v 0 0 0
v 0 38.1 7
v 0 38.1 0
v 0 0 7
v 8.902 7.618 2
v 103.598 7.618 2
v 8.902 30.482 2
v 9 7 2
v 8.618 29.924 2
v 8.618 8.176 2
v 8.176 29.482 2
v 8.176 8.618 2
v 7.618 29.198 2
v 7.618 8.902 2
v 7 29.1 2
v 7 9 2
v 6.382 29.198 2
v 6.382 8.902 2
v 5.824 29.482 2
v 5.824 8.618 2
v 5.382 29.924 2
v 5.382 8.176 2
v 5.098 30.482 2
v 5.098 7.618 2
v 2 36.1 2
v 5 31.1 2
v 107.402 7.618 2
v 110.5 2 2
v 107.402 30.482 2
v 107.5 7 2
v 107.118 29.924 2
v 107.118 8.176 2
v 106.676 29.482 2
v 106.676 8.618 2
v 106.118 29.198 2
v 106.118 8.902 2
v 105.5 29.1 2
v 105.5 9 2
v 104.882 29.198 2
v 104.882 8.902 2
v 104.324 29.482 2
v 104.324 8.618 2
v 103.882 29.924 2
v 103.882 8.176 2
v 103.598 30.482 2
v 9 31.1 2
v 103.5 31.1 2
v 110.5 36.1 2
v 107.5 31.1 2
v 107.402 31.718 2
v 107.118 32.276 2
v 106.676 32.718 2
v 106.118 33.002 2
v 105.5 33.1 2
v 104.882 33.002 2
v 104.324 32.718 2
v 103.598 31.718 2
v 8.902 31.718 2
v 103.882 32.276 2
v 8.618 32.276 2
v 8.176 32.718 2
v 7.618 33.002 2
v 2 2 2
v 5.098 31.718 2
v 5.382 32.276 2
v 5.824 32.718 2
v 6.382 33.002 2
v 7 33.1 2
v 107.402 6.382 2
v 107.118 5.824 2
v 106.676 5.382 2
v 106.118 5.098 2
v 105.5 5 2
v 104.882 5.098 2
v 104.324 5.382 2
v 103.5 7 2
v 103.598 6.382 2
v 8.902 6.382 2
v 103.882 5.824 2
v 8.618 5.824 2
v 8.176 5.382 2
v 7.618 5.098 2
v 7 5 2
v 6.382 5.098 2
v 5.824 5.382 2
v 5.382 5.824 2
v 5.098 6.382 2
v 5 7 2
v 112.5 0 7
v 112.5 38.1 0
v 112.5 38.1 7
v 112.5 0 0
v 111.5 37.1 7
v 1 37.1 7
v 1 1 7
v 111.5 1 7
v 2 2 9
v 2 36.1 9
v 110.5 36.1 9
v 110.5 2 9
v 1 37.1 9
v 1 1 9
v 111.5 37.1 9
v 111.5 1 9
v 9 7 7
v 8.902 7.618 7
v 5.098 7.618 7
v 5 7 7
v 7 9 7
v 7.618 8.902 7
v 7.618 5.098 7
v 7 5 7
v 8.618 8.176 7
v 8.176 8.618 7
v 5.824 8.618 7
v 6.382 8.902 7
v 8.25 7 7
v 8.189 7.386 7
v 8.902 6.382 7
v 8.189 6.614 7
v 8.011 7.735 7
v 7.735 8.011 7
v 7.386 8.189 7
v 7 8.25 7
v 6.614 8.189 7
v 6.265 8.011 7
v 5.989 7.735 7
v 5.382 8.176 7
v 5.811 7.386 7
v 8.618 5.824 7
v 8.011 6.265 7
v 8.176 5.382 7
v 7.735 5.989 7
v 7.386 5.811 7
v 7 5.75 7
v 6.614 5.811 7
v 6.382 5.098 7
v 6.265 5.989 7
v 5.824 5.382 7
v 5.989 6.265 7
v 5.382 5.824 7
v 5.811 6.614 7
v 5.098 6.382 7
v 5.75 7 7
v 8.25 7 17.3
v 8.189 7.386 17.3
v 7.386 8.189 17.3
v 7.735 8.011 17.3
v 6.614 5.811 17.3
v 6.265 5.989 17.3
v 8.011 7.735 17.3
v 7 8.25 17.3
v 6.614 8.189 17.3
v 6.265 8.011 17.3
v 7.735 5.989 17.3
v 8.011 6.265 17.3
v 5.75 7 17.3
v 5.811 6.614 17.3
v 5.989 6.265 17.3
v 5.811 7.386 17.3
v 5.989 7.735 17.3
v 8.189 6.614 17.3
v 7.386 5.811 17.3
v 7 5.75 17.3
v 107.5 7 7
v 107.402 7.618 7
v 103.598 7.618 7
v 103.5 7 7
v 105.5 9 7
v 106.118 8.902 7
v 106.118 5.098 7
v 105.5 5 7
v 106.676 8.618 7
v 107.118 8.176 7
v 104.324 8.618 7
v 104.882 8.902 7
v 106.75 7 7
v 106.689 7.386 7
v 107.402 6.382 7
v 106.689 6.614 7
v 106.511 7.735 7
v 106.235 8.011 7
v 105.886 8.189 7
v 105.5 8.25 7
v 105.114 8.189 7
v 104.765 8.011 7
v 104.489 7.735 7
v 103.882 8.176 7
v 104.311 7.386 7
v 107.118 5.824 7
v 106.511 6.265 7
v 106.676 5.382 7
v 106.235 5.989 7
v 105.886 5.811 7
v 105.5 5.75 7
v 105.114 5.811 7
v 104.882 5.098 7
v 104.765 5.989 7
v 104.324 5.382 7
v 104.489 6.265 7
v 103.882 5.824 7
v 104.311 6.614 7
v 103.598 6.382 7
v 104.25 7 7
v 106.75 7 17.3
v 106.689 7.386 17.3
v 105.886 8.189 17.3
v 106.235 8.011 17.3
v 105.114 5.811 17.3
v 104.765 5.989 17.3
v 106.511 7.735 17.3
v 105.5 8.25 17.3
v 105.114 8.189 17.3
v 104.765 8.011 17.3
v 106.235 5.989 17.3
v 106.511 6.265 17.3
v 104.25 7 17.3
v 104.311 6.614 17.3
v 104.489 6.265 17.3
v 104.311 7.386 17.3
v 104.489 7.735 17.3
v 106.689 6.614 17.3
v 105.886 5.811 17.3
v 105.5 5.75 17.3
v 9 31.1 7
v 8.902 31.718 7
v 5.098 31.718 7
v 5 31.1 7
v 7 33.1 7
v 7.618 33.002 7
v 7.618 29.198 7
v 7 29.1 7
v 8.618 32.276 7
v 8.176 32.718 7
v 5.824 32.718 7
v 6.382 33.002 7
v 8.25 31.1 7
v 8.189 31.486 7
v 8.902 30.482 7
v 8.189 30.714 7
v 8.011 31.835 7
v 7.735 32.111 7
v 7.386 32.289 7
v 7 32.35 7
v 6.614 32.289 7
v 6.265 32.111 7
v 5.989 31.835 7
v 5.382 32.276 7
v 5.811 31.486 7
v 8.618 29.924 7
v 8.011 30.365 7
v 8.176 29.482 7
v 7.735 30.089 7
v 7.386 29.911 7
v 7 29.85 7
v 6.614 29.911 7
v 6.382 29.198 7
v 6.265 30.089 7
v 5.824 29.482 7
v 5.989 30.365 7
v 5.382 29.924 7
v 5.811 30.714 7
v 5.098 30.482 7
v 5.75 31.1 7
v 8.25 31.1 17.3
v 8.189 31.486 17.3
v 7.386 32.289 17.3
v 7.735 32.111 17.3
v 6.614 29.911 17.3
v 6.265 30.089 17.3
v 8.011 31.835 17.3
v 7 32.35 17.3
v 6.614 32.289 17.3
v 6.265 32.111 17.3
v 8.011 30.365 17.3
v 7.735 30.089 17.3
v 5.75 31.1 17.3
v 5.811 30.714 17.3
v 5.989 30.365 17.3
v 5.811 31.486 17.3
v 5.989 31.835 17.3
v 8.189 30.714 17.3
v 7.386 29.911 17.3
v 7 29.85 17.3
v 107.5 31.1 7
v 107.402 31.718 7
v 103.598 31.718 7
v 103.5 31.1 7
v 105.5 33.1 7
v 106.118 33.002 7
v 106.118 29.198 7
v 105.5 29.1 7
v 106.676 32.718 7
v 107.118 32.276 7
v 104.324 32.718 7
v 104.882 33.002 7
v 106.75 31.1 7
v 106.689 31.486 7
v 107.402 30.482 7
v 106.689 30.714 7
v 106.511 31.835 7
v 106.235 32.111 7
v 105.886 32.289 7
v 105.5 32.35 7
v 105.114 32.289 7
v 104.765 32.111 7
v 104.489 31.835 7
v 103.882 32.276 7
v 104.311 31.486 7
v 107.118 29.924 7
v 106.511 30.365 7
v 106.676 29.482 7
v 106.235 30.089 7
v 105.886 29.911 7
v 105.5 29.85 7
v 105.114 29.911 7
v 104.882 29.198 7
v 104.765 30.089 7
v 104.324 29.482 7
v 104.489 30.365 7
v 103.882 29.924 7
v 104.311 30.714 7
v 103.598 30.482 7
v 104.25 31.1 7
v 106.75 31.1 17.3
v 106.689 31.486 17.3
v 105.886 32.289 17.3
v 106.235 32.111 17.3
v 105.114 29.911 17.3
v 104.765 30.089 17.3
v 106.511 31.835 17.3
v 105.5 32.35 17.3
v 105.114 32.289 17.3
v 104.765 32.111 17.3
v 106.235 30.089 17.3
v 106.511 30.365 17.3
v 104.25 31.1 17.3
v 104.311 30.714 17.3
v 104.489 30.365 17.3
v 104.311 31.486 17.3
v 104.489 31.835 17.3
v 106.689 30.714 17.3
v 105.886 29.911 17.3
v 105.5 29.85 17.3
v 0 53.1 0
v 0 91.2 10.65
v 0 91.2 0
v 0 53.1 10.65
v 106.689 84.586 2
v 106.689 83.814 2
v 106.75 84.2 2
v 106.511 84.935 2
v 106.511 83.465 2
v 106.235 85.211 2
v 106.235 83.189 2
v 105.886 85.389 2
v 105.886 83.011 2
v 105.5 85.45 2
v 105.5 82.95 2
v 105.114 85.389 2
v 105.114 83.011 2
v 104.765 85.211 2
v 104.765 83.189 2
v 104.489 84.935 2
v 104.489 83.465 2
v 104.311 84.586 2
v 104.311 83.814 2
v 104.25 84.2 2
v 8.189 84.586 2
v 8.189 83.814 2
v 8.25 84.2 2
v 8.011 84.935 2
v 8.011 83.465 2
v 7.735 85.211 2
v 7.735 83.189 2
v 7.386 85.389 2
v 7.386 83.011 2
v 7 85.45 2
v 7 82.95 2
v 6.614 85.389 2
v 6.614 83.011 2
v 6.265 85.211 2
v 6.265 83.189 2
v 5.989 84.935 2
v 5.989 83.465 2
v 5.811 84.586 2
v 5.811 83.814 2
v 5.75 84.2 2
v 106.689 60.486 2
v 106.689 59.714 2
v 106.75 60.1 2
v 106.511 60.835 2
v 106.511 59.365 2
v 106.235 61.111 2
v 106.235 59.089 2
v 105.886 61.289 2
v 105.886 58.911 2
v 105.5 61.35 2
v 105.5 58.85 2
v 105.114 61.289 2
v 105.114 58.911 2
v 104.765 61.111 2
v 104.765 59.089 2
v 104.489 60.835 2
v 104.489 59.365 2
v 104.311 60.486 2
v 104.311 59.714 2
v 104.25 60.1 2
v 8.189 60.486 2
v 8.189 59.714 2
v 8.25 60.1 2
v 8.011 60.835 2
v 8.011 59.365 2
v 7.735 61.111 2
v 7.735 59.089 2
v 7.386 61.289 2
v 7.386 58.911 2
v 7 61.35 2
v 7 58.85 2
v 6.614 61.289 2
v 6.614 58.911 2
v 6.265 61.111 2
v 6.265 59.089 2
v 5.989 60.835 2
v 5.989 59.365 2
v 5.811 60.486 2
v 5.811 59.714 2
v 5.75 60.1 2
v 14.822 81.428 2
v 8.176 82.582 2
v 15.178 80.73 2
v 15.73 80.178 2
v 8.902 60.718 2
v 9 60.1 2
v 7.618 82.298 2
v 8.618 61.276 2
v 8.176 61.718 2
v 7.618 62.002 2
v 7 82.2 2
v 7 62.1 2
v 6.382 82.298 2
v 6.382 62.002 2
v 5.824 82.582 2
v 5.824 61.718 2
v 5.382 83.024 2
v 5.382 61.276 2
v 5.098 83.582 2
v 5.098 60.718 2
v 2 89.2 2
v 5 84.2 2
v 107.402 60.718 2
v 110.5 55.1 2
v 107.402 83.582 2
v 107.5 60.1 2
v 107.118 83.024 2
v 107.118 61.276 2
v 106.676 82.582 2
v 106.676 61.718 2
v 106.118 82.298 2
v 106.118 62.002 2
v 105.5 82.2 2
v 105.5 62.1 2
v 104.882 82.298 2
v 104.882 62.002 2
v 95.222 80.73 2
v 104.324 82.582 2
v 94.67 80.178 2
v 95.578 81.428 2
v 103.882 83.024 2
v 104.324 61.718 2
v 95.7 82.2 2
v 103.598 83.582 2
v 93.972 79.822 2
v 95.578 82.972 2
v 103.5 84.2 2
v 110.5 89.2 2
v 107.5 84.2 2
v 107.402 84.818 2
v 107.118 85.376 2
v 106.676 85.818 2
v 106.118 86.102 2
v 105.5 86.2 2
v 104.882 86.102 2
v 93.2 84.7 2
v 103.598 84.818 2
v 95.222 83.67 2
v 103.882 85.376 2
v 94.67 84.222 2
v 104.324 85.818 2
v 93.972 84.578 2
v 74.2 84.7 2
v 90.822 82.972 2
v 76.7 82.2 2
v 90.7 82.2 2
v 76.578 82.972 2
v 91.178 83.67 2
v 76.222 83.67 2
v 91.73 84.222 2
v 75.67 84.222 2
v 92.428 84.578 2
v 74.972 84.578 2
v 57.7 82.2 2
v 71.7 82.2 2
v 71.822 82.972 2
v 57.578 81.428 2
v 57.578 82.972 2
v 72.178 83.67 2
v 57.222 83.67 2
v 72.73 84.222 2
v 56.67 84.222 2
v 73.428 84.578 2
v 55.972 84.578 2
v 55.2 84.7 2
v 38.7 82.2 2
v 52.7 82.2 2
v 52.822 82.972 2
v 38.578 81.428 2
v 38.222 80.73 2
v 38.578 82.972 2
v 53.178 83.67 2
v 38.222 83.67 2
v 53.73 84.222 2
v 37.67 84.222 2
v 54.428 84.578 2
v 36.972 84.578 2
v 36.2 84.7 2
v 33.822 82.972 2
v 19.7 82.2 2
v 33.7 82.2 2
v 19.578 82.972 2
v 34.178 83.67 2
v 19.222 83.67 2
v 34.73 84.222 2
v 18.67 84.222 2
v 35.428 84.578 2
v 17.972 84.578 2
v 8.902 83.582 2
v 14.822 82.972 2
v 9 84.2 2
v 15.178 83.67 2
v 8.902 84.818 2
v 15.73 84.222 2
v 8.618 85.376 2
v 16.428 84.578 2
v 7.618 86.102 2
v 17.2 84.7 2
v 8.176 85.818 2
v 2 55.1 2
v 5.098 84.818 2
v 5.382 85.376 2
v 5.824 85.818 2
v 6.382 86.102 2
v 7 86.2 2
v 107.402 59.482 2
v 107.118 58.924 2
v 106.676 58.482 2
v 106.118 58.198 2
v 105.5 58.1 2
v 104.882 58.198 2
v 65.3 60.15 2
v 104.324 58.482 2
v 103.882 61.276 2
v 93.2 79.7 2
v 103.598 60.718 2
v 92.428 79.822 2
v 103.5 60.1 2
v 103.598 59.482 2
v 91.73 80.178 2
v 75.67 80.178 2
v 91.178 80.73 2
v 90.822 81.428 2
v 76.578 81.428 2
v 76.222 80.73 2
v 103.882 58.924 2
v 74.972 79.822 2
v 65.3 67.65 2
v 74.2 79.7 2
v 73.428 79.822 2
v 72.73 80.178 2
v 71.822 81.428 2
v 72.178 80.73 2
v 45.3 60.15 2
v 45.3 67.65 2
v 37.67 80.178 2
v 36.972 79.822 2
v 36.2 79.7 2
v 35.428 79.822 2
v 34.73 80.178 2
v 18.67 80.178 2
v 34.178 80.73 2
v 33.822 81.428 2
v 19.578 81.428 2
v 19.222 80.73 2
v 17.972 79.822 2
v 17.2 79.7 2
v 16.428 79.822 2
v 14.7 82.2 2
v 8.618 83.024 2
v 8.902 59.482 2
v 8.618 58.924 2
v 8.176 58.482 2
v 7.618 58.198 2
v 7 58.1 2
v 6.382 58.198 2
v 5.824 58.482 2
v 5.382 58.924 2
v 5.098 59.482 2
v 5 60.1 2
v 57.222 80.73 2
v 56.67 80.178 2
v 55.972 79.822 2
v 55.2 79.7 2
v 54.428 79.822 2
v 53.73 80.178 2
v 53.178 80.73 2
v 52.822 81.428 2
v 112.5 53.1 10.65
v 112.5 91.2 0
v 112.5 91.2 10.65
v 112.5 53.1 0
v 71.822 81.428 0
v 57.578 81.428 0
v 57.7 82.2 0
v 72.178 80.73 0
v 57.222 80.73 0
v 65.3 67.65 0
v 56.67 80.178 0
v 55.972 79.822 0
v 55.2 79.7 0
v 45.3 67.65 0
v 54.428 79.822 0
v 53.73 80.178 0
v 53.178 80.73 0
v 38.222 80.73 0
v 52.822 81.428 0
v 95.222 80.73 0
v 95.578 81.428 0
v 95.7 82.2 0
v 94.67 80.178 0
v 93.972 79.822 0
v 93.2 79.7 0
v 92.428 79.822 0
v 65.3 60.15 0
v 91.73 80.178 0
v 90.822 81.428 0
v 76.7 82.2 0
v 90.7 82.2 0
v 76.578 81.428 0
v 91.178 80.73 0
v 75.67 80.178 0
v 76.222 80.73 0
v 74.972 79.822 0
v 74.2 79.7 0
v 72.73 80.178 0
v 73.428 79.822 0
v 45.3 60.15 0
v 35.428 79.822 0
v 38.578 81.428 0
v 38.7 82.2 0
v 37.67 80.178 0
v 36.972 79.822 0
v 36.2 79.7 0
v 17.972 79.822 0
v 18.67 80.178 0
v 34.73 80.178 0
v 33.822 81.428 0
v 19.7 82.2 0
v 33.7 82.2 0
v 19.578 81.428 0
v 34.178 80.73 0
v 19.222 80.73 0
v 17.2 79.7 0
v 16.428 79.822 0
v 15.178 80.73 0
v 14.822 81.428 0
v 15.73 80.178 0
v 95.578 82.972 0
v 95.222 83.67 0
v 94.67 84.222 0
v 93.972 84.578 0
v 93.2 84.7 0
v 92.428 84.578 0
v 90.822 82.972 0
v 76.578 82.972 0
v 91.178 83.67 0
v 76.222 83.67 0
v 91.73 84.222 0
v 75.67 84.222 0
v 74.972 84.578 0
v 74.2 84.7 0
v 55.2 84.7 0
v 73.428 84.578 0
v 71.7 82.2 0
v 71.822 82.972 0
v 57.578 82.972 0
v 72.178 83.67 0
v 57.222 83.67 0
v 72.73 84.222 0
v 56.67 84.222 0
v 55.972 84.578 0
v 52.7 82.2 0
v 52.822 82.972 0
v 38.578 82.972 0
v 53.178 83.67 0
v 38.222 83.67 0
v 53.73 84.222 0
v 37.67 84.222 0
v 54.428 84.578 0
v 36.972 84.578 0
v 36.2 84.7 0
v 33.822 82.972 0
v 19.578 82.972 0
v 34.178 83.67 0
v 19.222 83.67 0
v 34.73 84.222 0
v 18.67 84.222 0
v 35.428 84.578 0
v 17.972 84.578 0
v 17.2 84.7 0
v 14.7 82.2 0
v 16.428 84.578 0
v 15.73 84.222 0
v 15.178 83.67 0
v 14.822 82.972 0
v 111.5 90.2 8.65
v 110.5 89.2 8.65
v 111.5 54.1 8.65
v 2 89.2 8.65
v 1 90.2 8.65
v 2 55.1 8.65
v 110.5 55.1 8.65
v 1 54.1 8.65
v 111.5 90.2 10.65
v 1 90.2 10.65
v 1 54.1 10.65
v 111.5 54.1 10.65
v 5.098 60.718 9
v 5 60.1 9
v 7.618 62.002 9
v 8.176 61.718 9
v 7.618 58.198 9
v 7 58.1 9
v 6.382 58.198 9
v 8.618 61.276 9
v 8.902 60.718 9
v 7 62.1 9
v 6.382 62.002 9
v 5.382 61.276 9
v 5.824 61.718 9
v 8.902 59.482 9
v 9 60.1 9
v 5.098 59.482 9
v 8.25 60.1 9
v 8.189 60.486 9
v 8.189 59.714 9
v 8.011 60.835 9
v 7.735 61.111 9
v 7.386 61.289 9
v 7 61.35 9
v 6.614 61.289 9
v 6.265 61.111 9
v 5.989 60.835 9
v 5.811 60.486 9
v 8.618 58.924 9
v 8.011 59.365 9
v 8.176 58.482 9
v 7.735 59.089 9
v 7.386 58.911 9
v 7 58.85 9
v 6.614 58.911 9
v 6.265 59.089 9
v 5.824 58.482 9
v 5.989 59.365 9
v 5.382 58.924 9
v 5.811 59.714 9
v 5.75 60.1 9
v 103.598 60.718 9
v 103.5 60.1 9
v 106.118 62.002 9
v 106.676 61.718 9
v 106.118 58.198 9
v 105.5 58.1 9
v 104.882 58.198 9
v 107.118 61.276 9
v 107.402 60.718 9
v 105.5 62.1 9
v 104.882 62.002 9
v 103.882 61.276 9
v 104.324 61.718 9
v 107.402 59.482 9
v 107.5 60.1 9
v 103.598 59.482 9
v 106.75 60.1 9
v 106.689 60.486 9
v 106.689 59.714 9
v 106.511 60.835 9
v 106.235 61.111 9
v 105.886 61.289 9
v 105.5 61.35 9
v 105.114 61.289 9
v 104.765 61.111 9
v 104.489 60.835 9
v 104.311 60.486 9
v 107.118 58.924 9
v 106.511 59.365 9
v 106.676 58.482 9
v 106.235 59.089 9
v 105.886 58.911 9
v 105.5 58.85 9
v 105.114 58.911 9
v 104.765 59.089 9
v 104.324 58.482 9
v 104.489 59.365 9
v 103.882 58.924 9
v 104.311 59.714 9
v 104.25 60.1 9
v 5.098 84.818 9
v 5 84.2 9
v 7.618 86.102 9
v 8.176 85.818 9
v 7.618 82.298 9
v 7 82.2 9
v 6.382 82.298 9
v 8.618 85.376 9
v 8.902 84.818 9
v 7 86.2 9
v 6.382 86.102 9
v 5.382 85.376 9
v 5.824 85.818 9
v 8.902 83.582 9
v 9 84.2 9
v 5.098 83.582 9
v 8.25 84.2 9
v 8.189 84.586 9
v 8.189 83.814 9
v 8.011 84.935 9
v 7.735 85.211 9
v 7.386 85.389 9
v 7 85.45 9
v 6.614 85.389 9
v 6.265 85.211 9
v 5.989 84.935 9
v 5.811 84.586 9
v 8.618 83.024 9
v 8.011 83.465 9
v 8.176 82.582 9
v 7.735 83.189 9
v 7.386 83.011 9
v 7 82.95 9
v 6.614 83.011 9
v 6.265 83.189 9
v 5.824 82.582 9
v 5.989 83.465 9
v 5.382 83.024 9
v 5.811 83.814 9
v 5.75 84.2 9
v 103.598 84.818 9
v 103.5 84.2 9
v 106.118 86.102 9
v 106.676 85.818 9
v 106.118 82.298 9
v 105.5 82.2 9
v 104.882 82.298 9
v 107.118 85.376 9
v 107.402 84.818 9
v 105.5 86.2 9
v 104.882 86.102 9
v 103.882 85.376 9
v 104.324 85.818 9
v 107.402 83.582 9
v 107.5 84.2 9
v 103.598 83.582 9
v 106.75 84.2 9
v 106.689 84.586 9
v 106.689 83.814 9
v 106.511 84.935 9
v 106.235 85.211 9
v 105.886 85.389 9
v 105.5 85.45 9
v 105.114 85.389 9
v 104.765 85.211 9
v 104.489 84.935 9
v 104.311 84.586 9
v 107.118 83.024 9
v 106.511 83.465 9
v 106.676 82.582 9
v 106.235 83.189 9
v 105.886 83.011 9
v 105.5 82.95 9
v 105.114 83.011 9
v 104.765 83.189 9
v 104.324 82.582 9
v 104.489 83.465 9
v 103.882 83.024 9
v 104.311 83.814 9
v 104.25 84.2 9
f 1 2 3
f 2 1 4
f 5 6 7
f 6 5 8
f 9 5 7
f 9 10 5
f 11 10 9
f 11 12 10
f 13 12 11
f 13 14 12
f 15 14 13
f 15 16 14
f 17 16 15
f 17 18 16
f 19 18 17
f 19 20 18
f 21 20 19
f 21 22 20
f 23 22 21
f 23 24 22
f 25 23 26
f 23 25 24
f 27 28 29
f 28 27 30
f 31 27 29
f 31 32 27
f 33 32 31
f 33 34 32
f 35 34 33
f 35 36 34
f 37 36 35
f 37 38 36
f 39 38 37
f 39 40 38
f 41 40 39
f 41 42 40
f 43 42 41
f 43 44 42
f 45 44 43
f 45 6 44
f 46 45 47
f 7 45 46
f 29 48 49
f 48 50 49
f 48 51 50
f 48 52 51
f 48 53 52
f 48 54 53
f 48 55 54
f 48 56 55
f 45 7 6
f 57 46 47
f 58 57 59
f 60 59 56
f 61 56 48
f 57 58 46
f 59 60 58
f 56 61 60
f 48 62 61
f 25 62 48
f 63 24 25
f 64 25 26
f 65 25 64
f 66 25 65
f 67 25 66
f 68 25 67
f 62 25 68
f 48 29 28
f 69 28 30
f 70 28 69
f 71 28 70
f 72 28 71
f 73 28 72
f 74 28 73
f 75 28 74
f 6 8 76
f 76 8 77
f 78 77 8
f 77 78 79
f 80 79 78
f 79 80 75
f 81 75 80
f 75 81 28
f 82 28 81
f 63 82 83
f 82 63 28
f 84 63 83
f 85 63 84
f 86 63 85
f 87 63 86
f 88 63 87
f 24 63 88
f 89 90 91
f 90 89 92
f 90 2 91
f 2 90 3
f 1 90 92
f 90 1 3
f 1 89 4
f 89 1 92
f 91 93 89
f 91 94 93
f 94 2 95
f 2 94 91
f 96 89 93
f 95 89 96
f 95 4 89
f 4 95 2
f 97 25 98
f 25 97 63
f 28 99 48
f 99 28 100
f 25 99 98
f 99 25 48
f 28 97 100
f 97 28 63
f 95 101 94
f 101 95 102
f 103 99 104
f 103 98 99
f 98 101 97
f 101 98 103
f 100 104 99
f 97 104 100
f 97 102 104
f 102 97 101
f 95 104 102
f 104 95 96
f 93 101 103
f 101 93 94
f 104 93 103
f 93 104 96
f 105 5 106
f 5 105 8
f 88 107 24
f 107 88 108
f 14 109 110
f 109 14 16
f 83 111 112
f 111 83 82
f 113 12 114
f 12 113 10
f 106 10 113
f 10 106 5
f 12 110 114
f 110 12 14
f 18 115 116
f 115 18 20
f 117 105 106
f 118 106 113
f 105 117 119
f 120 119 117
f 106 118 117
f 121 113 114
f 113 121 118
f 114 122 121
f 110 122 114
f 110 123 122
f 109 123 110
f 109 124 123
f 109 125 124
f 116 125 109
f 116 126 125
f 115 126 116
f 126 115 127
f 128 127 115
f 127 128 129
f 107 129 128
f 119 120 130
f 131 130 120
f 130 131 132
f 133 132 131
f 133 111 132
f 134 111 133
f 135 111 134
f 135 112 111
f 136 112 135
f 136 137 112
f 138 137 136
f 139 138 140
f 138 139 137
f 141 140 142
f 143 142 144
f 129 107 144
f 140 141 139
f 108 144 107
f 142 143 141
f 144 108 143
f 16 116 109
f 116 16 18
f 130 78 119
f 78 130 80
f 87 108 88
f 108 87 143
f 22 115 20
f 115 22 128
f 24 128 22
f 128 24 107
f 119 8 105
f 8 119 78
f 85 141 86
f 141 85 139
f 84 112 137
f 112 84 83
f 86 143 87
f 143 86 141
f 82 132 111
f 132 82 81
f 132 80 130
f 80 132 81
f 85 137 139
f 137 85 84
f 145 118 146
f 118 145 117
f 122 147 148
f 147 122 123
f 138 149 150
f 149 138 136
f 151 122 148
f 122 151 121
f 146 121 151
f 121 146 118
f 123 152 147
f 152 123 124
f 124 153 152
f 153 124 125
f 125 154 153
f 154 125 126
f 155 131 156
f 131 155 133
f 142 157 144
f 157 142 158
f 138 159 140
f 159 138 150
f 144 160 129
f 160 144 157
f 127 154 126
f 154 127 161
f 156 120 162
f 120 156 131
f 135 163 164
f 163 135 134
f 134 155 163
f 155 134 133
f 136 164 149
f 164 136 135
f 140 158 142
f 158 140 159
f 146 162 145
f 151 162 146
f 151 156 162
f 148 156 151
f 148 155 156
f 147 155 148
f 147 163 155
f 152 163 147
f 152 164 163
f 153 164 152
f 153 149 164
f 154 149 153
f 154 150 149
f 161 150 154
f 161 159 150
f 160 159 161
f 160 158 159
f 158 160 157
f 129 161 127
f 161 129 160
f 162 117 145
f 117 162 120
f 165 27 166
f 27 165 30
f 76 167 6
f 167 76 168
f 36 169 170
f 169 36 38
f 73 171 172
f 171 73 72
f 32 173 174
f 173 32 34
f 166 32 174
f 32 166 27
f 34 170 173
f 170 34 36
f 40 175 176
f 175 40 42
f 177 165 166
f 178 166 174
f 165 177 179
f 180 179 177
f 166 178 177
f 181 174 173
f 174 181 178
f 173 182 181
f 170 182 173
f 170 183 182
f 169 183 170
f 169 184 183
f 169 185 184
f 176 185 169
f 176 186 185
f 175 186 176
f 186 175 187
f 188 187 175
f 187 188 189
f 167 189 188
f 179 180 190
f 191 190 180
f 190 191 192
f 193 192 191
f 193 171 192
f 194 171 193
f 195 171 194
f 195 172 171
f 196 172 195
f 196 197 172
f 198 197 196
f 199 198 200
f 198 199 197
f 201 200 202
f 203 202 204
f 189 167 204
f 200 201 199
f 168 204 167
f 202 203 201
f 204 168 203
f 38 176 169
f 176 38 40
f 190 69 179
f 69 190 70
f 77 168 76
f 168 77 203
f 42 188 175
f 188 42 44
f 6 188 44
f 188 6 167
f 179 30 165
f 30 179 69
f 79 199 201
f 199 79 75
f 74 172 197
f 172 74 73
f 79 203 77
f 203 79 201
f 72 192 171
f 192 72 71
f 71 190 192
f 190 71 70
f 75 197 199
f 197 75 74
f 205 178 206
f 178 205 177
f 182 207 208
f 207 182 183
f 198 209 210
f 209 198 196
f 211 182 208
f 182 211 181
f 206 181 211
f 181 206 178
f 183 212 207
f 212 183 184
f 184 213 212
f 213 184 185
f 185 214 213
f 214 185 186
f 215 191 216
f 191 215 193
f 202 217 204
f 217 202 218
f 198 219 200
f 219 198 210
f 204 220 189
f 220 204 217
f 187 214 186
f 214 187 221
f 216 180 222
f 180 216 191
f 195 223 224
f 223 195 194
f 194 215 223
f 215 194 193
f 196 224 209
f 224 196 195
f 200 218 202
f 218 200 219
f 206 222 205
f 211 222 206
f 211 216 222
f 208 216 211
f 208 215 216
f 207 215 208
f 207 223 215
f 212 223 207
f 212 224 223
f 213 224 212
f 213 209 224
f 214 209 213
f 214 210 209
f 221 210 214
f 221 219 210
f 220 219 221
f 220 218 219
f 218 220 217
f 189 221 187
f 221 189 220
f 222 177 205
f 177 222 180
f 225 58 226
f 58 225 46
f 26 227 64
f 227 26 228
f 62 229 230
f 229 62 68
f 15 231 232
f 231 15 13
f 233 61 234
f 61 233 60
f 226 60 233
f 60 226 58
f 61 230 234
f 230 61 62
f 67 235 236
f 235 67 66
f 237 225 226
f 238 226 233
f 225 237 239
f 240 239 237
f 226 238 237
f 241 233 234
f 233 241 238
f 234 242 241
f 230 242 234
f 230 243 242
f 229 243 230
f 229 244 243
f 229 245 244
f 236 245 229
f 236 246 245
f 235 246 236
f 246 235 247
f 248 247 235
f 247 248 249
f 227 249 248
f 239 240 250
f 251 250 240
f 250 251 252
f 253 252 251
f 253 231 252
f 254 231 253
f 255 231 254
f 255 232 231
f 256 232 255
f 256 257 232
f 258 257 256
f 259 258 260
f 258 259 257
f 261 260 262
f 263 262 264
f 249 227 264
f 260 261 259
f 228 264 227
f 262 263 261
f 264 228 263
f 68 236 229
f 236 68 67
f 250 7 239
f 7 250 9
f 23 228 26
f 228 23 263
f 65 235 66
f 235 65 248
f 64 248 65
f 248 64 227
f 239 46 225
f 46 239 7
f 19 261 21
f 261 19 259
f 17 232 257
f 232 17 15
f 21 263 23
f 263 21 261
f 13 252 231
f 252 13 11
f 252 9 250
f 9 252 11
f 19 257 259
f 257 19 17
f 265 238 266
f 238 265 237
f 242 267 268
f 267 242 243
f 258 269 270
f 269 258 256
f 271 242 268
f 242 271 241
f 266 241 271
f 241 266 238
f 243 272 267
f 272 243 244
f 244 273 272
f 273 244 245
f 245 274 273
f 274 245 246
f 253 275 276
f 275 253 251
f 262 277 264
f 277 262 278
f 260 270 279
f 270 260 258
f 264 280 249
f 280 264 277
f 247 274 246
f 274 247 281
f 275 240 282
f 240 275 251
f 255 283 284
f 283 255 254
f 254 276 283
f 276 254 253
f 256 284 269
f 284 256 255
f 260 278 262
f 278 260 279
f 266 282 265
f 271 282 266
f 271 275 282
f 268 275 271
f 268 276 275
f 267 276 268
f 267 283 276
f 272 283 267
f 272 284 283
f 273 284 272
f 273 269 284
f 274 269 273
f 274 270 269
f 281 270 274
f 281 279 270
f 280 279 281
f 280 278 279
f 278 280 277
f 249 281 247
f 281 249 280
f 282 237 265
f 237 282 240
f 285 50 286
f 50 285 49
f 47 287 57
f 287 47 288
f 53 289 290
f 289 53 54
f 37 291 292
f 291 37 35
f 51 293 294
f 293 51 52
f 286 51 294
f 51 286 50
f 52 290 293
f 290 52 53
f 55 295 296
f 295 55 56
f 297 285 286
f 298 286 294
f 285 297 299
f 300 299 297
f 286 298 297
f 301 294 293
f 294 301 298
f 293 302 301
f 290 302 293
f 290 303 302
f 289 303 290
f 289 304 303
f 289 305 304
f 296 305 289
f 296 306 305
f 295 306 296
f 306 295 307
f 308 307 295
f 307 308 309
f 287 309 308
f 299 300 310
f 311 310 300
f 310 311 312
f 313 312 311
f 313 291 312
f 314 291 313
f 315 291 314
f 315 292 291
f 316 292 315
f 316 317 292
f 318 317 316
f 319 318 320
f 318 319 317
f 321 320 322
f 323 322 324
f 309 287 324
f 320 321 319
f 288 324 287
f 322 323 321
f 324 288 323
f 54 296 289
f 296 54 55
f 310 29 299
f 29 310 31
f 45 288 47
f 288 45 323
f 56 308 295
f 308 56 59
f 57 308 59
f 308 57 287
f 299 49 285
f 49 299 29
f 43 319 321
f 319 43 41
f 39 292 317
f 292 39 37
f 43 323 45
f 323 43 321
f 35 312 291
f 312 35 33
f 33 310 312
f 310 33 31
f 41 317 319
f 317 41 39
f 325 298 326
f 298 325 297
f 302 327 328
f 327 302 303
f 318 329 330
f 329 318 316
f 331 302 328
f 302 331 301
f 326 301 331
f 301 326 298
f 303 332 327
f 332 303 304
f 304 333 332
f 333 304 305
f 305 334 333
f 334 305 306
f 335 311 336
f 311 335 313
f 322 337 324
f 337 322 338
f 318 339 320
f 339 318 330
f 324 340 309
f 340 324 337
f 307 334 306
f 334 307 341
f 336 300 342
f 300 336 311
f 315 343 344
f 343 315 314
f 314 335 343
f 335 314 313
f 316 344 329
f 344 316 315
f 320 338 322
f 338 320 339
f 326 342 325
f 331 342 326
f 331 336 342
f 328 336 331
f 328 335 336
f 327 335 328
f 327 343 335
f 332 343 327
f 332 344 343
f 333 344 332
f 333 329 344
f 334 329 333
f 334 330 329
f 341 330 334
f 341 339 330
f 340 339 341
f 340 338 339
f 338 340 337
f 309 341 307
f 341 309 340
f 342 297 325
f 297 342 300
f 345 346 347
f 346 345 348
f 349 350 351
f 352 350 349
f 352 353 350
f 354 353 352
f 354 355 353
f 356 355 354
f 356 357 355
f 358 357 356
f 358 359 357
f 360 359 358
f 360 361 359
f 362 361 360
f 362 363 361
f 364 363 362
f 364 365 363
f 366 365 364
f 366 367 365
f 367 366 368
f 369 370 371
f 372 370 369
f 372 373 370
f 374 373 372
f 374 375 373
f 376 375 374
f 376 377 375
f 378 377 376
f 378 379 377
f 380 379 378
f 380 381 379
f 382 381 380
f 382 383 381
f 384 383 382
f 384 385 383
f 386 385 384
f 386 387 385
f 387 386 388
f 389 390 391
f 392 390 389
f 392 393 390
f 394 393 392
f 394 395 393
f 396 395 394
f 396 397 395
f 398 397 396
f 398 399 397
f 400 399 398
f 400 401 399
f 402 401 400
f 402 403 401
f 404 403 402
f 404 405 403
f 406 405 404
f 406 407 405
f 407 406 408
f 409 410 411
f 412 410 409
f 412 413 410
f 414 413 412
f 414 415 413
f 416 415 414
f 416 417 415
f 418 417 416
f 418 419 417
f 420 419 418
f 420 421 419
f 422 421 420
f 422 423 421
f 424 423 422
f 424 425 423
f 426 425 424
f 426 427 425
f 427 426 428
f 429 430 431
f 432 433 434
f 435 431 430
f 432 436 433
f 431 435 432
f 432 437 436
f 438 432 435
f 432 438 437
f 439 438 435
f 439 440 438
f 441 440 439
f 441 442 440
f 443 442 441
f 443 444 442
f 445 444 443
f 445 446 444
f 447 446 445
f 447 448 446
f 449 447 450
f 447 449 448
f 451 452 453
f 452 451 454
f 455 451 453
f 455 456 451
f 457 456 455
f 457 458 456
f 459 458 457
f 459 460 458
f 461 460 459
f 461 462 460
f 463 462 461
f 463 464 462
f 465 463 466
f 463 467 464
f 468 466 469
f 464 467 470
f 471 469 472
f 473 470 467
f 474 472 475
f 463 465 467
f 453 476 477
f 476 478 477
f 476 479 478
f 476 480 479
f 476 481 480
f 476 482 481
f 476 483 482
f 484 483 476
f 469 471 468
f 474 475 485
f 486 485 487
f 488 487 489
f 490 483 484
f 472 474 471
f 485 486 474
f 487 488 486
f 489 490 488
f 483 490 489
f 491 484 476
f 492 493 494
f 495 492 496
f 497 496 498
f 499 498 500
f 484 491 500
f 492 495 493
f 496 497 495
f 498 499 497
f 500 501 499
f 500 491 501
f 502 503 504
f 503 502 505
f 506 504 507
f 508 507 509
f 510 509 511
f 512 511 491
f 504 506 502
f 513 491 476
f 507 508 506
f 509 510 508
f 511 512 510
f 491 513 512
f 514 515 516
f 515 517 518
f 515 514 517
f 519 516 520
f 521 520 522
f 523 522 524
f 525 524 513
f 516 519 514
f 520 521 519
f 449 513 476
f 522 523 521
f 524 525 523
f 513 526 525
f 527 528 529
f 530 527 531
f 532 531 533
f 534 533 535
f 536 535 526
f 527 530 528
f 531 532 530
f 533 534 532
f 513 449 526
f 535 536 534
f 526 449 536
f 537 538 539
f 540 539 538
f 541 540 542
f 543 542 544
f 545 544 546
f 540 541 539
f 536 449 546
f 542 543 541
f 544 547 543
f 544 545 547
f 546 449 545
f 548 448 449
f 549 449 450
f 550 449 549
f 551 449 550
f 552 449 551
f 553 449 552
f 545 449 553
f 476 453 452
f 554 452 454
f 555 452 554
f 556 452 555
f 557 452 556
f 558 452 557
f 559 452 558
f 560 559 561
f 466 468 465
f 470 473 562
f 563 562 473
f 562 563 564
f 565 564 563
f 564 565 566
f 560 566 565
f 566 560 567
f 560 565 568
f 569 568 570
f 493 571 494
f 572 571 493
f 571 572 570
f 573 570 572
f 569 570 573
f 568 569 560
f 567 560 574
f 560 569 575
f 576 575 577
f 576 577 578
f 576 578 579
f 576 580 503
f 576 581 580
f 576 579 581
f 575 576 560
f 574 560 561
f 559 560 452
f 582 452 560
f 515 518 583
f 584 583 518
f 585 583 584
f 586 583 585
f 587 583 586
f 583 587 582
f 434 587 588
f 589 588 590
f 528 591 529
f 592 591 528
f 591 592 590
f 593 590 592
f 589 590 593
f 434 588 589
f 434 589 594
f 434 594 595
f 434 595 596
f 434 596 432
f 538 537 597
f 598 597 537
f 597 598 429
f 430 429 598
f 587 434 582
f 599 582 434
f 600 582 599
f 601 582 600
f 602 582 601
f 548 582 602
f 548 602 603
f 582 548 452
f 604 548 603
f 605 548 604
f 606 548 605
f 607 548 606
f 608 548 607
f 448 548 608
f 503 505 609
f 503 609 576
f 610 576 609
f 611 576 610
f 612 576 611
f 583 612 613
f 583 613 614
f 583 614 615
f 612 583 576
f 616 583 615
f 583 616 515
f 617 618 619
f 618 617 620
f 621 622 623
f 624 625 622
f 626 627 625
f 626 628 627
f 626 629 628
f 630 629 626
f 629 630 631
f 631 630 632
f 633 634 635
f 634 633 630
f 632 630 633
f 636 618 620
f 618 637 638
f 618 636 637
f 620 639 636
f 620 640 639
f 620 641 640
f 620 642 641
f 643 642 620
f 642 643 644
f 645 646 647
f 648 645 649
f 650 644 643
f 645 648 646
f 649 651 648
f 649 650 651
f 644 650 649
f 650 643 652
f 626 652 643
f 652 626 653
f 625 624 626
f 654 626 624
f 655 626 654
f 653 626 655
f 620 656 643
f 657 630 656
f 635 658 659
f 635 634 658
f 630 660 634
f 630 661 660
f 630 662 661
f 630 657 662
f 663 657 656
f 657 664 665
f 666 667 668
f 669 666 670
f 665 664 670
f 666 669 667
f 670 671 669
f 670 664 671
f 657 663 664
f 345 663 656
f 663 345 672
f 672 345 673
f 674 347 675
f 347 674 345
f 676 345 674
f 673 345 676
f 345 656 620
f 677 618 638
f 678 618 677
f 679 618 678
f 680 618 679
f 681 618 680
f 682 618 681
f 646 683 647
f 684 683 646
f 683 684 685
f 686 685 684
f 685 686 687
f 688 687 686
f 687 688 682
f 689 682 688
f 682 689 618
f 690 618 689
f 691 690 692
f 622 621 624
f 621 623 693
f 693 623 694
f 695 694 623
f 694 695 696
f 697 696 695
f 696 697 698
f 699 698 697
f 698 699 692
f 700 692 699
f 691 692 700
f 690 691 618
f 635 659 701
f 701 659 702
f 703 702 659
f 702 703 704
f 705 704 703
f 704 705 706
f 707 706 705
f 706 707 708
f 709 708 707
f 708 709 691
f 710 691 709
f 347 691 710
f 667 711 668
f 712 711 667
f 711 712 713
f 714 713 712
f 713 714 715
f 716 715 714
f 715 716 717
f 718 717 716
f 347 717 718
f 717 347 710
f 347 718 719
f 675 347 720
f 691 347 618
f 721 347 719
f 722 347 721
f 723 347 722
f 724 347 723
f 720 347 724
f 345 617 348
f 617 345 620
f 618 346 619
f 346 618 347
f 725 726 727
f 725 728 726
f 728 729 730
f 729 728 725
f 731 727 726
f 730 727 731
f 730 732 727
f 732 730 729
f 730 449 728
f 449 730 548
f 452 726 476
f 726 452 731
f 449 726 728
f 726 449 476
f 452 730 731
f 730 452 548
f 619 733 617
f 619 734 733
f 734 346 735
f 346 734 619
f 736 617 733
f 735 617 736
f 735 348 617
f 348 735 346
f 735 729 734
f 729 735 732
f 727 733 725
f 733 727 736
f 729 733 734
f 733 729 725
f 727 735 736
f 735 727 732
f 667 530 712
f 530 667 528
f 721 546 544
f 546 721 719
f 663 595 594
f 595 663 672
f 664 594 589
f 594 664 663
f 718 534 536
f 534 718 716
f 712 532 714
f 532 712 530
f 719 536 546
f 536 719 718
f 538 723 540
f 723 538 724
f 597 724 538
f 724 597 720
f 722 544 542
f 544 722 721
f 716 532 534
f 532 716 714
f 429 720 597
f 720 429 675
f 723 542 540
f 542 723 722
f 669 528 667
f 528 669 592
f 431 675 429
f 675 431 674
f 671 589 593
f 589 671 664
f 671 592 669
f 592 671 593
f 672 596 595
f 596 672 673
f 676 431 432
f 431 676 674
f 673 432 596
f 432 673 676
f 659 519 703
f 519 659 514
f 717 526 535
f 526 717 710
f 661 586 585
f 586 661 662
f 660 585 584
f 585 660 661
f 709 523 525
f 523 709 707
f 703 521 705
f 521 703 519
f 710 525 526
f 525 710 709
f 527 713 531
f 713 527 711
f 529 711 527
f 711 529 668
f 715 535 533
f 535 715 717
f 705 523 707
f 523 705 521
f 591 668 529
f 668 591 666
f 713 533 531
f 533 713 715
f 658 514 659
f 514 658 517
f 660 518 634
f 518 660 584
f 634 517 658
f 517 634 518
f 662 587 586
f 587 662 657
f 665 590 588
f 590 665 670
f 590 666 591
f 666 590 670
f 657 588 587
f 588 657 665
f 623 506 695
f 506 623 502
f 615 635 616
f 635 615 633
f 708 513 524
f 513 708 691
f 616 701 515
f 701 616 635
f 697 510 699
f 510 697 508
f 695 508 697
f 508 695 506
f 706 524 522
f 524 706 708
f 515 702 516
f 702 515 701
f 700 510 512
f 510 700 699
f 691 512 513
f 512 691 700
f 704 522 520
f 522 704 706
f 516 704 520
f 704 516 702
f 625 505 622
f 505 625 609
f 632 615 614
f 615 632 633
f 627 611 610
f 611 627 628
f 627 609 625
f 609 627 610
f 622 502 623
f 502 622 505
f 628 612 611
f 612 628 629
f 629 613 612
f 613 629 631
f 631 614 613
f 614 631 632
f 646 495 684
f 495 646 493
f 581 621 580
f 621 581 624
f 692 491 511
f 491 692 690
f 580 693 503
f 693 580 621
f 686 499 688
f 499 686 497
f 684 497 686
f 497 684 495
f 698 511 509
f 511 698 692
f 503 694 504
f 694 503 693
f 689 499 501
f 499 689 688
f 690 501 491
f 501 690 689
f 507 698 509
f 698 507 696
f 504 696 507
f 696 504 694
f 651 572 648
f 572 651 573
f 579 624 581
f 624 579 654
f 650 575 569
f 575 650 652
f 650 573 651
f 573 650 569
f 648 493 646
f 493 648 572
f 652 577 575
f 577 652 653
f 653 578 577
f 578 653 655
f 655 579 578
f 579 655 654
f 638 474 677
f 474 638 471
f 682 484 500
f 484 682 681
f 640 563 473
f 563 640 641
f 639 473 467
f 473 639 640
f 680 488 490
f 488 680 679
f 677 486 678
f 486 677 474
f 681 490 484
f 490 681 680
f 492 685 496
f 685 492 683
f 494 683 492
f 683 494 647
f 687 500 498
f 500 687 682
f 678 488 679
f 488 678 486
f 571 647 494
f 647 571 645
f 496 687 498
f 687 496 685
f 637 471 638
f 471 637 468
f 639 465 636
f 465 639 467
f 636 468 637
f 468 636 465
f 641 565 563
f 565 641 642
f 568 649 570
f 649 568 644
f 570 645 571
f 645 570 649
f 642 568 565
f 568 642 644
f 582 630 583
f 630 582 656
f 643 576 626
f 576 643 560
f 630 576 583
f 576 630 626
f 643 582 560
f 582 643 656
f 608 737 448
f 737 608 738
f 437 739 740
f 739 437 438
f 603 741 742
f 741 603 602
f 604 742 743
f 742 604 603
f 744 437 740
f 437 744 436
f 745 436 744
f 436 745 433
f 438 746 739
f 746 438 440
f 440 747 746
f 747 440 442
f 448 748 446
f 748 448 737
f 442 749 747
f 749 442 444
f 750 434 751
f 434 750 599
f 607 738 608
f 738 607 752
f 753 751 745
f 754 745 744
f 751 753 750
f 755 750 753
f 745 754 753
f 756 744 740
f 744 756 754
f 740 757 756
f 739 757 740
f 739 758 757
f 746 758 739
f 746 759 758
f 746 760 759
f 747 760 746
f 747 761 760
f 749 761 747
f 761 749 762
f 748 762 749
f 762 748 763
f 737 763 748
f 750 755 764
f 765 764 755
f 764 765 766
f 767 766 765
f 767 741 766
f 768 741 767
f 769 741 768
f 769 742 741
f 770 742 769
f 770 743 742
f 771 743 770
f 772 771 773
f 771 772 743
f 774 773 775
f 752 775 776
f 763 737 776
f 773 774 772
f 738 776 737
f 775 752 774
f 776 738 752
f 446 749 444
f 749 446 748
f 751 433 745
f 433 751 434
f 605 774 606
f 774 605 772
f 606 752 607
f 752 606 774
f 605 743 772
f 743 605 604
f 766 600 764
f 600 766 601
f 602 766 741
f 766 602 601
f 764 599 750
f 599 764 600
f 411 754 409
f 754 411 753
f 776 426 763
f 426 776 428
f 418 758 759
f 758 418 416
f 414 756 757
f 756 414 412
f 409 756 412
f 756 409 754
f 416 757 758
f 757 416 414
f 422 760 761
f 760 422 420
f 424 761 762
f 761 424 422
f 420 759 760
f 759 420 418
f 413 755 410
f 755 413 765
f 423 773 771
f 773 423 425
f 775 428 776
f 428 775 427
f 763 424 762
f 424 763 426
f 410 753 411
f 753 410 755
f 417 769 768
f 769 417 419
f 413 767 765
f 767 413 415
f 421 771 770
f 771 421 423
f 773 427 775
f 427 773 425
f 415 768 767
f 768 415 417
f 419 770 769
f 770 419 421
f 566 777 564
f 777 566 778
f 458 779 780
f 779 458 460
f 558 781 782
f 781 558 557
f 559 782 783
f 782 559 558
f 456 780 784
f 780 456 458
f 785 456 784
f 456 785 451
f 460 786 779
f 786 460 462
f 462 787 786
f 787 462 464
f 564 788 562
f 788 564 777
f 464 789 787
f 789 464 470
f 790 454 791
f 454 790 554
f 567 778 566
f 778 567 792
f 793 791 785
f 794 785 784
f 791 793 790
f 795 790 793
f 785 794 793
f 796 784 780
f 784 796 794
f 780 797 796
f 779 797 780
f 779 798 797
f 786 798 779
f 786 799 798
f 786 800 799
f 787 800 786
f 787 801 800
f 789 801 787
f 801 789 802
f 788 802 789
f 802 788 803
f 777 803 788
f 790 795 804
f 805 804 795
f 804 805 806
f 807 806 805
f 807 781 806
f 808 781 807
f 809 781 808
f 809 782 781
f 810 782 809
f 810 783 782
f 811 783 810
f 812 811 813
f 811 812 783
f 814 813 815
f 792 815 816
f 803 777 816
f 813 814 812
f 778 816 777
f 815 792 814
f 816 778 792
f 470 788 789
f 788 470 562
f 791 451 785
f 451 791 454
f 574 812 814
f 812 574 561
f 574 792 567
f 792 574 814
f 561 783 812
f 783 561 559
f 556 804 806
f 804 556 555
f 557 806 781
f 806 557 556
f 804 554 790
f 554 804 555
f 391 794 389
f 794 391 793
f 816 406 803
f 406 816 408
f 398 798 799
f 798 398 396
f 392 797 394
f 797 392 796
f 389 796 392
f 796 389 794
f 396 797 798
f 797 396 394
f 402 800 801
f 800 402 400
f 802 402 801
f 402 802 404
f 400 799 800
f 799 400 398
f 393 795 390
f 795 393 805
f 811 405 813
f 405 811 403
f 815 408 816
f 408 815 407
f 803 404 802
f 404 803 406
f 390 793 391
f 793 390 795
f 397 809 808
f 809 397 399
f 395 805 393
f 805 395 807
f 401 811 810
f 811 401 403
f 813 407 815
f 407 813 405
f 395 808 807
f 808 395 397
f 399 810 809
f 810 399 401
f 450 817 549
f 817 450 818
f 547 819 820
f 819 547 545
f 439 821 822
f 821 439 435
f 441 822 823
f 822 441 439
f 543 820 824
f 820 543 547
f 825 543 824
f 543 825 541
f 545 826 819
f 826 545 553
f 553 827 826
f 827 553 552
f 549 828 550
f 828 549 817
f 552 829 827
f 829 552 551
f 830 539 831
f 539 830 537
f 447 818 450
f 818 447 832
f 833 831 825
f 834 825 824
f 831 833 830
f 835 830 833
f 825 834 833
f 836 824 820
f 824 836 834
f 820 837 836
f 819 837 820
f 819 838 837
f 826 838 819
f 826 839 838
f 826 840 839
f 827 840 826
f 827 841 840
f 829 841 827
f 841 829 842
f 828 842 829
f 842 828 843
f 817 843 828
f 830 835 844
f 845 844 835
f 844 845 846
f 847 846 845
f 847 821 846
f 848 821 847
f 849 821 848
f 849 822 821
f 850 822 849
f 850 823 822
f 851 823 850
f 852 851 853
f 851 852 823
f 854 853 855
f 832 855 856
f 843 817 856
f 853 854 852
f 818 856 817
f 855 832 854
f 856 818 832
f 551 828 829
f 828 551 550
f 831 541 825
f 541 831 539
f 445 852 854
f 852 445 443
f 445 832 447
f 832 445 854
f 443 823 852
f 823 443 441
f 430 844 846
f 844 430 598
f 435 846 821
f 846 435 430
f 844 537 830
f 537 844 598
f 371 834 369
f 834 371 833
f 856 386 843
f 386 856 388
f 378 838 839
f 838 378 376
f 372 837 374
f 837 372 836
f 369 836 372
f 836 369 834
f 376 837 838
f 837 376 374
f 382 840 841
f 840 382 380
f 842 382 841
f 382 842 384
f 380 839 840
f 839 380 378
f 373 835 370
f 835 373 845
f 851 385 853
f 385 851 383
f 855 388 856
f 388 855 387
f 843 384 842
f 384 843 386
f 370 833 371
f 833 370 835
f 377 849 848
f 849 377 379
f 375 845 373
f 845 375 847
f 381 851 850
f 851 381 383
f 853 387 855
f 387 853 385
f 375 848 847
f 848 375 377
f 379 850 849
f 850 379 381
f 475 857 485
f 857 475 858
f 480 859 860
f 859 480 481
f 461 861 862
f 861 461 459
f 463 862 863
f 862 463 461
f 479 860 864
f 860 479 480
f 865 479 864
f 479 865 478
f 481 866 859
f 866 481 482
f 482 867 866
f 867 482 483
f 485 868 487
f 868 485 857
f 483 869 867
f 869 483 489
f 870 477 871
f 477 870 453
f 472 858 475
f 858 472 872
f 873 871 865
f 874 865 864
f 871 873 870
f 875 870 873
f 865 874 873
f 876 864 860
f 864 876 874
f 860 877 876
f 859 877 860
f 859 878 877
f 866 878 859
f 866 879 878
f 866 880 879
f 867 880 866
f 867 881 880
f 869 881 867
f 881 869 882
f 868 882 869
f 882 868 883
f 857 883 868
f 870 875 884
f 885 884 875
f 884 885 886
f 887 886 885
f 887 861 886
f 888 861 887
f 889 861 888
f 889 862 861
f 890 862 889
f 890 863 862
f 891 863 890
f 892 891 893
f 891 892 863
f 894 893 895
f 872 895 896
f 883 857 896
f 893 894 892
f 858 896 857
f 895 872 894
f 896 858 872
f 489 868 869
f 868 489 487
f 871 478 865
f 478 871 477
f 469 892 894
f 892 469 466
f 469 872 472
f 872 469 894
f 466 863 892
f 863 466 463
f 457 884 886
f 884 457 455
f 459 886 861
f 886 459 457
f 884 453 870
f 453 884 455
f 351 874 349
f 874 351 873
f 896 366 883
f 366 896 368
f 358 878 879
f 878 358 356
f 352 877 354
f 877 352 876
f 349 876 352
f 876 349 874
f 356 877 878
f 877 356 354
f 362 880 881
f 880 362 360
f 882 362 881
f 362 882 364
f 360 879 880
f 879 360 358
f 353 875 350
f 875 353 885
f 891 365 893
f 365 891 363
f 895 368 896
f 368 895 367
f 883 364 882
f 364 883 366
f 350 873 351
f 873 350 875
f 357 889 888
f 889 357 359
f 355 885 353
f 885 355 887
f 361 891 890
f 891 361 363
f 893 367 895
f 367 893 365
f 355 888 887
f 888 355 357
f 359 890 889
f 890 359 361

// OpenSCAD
// This design is parameterized based on holes in a PCB.
// It assumes that the PCB has 4 holes, evenly spaced as
// corners of a rectangle.

// Note: width refers to X axis, depth to Y, height to Z

// Edit these parameters for your own board dimensions

ceiling_distance_to_board = 7;

wall_thickness = 2;
floor_thickness = 2;
ceiling_thickness = 2;


hole_spacing_x = 98.5;
hole_spacing_y = 24.1;

hole_diameter = 2.5;
standoff_diameter = 4;

// How much the PCB needs to be raised from the bottom
// to leave room for solderings and whatnot
standoff_height = 5;
board_thickness = 1.65;


bottom_wall_height = standoff_height;
top_wall_height = ceiling_distance_to_board + board_thickness;
// Total height of box = floor_thickness + ceiling_thickness + bottom_wall_height + top_wall_height

// padding between standoff and wall
padding_left = 3;
padding_right = 3;
padding_back = 3;
padding_front = 3;

// ridge where bottom and top off box can overlap
// Make sure this isn't less than top_wall_height
ridge_height = 2;

// Project-specific params
led_diameter = 5;
first_led_offset_x = 10.2;
first_led_offset_y = 2;
led_origin_spacing = 19;
num_leds = 5;

connector_origin_x = 48.3;
connector_origin_y = 20.3;
connector_width = 20;
connector_depth = 7.5;

//-------------------------------------------------------------------

// Calculated globals
pin_height = bottom_wall_height + top_wall_height - standoff_height; 


module ceilingless_box(width, depth, height) {
    // Floor
    cube([width, depth, floor_thickness]);
    
    // Left wall
    translate([0, 0, floor_thickness])
        cube([
            wall_thickness,
            depth,
            height]);
    
    // Right wall
    translate([width - wall_thickness, 0, floor_thickness])
        cube([
            wall_thickness,
            depth,
            height]);
    
    // Rear wall
    translate([wall_thickness, depth - wall_thickness, floor_thickness])
        cube([
            width - 2 * wall_thickness,
            wall_thickness,
            height]);
    
    // Front wall
    translate([wall_thickness, 0, floor_thickness])
        cube([
            width - 2 * wall_thickness,
            wall_thickness,
            height]);
}

module bottom_case() {
    floor_width = hole_spacing_x + standoff_diameter + padding_left + padding_right + wall_thickness * 2;
    floor_depth = hole_spacing_y + standoff_diameter + padding_front + padding_back + wall_thickness * 2;
    
    module box() {
        ceilingless_box(floor_width, floor_depth, bottom_wall_height);        
        
        // Left Ridge
        translate([
            wall_thickness / 2,
            wall_thickness / 2,
            floor_thickness + bottom_wall_height])
            cube([
                wall_thickness / 2,
                floor_depth - wall_thickness,
                ridge_height]);
        
        
        // Right Ridge
        translate([
            floor_width - wall_thickness,
            wall_thickness / 2,
            floor_thickness + bottom_wall_height])
            cube([
                wall_thickness / 2,
                floor_depth - wall_thickness,
                ridge_height]);
                
        // Rear Ridge
        translate([
            wall_thickness,
            floor_depth - wall_thickness,
            floor_thickness + bottom_wall_height])
            cube([
                floor_width - wall_thickness * 2,
                wall_thickness / 2,
                ridge_height]);
                
        // Front Ridge
        translate([
            wall_thickness,
            wall_thickness / 2,
            floor_thickness + bottom_wall_height])
            cube([
                floor_width - 2 * wall_thickness,
                wall_thickness / 2,
                ridge_height
            ]);
    }
        
    
    // Place the standoffs and through-PCB pins in the box
    module pcb_holder() {        
        base_offset_x = wall_thickness + padding_left + standoff_diameter / 2;
        base_offset_y = wall_thickness + padding_front + standoff_diameter / 2;
        
        module pin() {
            // Standoff
            translate([0, 0,  standoff_height / 2])
                cylinder(
                    r = standoff_diameter / 2,
                    h = standoff_height,
                    center = true,
                    $fn = 20);
            
            // Through-PCB ping
            translate([0, 0, standoff_height + (board_thickness + pin_height) / 2])
                cylinder(
                    r = hole_diameter / 2,
                    h = board_thickness + pin_height,
                    center = true,
                    $fn = 20);
        }
        
        // Front left
        translate([base_offset_x, base_offset_y, floor_thickness])
            pin();
        
        // Front right
        translate([base_offset_x + hole_spacing_x, base_offset_y, floor_thickness])
            pin();
        
        // Rear left
        translate([base_offset_x, base_offset_y + hole_spacing_y, floor_thickness])
            pin();
        
        // Rear right
        translate([base_offset_x + hole_spacing_x, base_offset_y + hole_spacing_y, floor_thickness])
            pin();
        
    }
    
    box();
    pcb_holder();
}

module top_case() {
    floor_width = hole_spacing_x + standoff_diameter + padding_left + padding_right + wall_thickness * 2;
    floor_depth = hole_spacing_y + standoff_diameter + padding_front + padding_back + wall_thickness * 2;
    
    module box() {
        ceilingless_box(floor_width, floor_depth, top_wall_height - ridge_height);
        
        // Left Ridge
        translate([
            0,
            0,
            floor_thickness + top_wall_height - ridge_height])
            cube([
                wall_thickness / 2,
                floor_depth,
                ridge_height]);
        
        
        // Right Ridge
        translate([
            floor_width - wall_thickness / 2,
            0,
            floor_thickness + top_wall_height - ridge_height])
            cube([
                wall_thickness / 2,
                floor_depth,
                ridge_height]);
                
        // Rear Ridge
        translate([
            wall_thickness / 2,
            floor_depth - wall_thickness / 2,
            floor_thickness + top_wall_height - ridge_height])
            cube([
                floor_width - wall_thickness,
                wall_thickness / 2,
                ridge_height]);
                
        // Front Ridge
        translate([
            wall_thickness / 2,
            0,
            floor_thickness + top_wall_height - ridge_height])
            cube([
                floor_width - wall_thickness,
                wall_thickness / 2,
                ridge_height
            ]);        
    }
    
    module pcb_holder() {
        pin_holder_height = pin_height - board_thickness;
        base_offset_x = wall_thickness + padding_left + standoff_diameter / 2;
        base_offset_y = wall_thickness + padding_back + standoff_diameter / 2;
        
        module pin_receiver() {
            difference() {
                translate([0, 0,  pin_holder_height / 2])
                    cylinder(
                        r = standoff_diameter / 2,
                        h = pin_holder_height,
                        center = true,
                        $fn = 20);
                
                translate([0, 0, (pin_holder_height + 2) / 2])
                    cylinder(
                        r = hole_diameter / 2,
                        h = pin_holder_height + 2,
                        center = true,
                        $fn = 20);
           }
        }
        
        // Keep in mind that this part needs to be turned over to get the correct
        // orientation. In the design, the rear left here looks like the front left.
        
        // Rear left
        translate([base_offset_x, base_offset_y, floor_thickness])
            pin_receiver();
        
        // Rear right
        translate([base_offset_x + hole_spacing_x, base_offset_y, floor_thickness])
            pin_receiver();
        
        // Front left
        translate([base_offset_x, base_offset_y + hole_spacing_y, floor_thickness])
            pin_receiver();
        
        // Front right
        translate([base_offset_x + hole_spacing_x, base_offset_y + hole_spacing_y, floor_thickness])
            pin_receiver();
    }
    
    module led_holes() {
        base_offset_x = wall_thickness + padding_left + standoff_diameter / 2;
        base_offset_y = wall_thickness + padding_front + standoff_diameter / 2 + hole_spacing_y;
        
        module hole() {
            translate([
                0,
                0,
                ceiling_thickness / 2])
                    cylinder(
                        r = led_diameter / 2,
                        h = ceiling_thickness + 2,
                        center = true,
                        $fn = 20);    
        }
        
        for (i = [0 : num_leds - 1]) {
            translate([
                base_offset_x + first_led_offset_x + i * led_origin_spacing,
                base_offset_y - first_led_offset_y,
                0])
                hole();
        }
        
    }
    
    module connector_hole() {
        base_offset_x = wall_thickness + padding_left + standoff_diameter / 2;
        base_offset_y = wall_thickness + padding_front + standoff_diameter / 2 + hole_spacing_y;
        translate([
            base_offset_x + connector_origin_x - connector_width / 2,
            base_offset_y - connector_origin_y - connector_depth / 2,
            - ceiling_thickness / 2])
            cube([connector_width, connector_depth, ceiling_thickness * 2]);
    }
    
    difference() {
        box();
        led_holes();
        connector_hole();
    }
        
    pcb_holder();
}


bottom_case();

translate([
    0,
    15 + hole_spacing_y + standoff_diameter + padding_front + padding_back + wall_thickness * 2,
    0])
    top_case();
